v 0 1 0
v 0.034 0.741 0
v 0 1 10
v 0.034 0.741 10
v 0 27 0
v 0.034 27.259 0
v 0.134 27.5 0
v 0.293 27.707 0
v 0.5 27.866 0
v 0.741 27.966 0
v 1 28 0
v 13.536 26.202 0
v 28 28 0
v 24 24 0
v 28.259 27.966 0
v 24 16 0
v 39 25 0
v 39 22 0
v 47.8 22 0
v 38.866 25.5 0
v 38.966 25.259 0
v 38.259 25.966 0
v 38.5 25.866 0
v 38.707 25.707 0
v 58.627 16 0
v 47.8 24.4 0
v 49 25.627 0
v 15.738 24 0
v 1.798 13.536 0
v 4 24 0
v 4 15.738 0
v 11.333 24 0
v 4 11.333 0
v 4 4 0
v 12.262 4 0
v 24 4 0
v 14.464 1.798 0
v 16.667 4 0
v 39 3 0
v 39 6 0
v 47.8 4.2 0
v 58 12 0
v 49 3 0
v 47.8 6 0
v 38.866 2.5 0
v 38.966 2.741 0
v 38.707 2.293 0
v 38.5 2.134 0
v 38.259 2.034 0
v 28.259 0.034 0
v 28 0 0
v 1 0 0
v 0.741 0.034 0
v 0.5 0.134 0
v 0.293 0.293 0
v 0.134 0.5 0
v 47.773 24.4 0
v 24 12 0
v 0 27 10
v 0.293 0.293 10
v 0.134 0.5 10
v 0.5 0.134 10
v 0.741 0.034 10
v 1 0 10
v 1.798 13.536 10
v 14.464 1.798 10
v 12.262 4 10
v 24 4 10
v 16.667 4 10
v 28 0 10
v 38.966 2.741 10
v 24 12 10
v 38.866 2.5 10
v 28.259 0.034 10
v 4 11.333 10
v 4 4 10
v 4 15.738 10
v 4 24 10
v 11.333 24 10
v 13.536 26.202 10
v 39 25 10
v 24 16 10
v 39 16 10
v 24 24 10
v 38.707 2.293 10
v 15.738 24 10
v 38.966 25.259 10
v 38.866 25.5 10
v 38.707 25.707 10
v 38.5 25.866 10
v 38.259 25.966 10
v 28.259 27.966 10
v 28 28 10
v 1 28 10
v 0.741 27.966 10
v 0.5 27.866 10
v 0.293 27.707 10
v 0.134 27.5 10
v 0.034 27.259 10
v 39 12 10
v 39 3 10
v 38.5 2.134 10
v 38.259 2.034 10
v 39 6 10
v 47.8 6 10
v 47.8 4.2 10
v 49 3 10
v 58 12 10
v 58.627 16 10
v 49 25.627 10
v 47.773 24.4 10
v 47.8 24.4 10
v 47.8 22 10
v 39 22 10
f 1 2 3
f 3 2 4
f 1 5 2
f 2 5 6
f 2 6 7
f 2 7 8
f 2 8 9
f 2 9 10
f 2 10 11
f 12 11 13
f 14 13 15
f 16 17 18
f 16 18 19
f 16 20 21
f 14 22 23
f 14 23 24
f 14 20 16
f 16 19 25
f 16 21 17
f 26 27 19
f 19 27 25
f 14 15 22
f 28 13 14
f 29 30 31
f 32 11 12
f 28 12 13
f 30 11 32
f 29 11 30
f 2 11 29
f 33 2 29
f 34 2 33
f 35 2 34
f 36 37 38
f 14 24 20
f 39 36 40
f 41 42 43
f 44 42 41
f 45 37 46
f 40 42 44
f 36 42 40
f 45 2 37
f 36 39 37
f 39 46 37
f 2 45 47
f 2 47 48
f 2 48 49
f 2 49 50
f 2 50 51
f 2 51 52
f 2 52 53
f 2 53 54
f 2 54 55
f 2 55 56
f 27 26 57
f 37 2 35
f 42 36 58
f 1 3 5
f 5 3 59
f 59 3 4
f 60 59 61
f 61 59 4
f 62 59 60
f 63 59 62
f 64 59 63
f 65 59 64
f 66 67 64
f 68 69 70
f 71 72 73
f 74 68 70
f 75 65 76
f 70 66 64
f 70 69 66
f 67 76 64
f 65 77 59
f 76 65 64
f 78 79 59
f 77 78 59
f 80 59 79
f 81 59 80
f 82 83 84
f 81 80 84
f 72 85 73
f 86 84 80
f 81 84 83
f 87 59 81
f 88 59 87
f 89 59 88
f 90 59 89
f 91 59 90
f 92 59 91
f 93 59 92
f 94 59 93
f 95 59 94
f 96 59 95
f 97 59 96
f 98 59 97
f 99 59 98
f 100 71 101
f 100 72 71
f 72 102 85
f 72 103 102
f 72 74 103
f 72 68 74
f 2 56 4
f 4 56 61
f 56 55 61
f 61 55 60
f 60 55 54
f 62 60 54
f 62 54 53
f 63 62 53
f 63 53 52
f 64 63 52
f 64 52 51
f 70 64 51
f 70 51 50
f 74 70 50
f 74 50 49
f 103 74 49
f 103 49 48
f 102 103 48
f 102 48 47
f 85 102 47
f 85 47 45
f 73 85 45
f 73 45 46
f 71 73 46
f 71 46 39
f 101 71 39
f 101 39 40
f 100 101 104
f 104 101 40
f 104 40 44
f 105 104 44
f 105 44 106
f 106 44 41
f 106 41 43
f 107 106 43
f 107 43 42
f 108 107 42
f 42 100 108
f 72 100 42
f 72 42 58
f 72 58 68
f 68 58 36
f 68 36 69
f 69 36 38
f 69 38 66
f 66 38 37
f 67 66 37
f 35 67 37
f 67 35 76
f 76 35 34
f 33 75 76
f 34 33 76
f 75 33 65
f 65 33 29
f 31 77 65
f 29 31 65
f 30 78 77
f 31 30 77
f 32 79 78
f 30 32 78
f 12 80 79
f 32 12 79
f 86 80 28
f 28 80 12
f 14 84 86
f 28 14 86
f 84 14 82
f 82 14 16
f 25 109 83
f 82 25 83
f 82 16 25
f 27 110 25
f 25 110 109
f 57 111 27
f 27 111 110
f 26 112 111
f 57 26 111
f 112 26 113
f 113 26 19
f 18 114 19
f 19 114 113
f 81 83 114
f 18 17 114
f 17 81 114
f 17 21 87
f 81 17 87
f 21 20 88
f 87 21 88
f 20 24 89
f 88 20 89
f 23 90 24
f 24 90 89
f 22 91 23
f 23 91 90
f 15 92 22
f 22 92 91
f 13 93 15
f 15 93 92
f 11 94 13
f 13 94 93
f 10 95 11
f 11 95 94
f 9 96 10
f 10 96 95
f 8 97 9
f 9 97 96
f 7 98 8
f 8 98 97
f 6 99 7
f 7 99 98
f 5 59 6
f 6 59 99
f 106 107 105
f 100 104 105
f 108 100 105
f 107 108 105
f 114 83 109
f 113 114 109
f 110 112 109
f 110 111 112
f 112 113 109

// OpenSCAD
// file: tools/MCAD/metric_fasteners_tab.scad
//
// Symbols
//
M1x0_25 = 0;
M1 = M1x0_25;
M1_2x0_25 = 1;
M1_2 = M1_2x0_25;
M1_4x0_3 = 2;
M1_4 = M1_4x0_3;
M1_6x0_35 = 3;
M1_6 = M1_6x0_35;
M2x0_4 = 4;
M2 = M2x0_4;
M2_5x0_45 = 5;
M2_5 = M2_5x0_45;
M3x0_5 = 6;
M3 = M3x0_5;
M3_5x0_6 = 7;
M3_5 = M3_5x0_6;
M4x0_7 = 8;
M4 = M4x0_7;
M5x0_8 = 9;
M5 = M5x0_8;
M6x1 = 10;
M6 = M6x1;
M7x1 = 11;
M7 = M7x1;
M8x1 = 12;
M8x1_25 = 13;
M8 = M8x1_25;
M10x1 = 14;
M10x1_25 = 15;
M10x1_5 = 16;
M10 = M10x1_5;
M12x1_25 = 17;
M12x1_5 = 18;
M12x1_75 = 19;
M12 = M12x1_75;
M14x1_5 = 20;
M14x2 = 21;
M14 = M14x2;
M16x1_5 = 22;
M16x2 = 23;
M16 = M16x2;
M18x1_5 = 24;
M18x2 = 25;
M18x2_5 = 26;
M18 = M18x2_5;
M20x1_5 = 27;
M20x2 = 28;
M20x2_5 = 29;
M20 = M20x2_5;
M22x1_5 = 30;
M22x2 = 31;
M22x2_5 = 32;
M22 = M22x2_5;
M24x2 = 33;
M24x3 = 34;
M24 = M24x3;
M27x2 = 35;
M27x3 = 36;
M27 = M27x3;
M30x2 = 37;
M30x3_5 = 38;
M30 = M30x3_5;
M33x2 = 39;
M33x3_5 = 40;
M33 = M33x3_5;
M36x3 = 41;
M36x4 = 42;
M36 = M36x4;
M39x3 = 43;
M39x4 = 44;
M39 = M39x4;
M42x3 = 45;
M42x4_5 = 46;
M42 = M42x4_5;
M45x3 = 47;
M45x4_5 = 48;
M45 = M45x4_5;
M48x3 = 49;
M48x5 = 50;
M48 = M48x5;
M52x4 = 51;
M52x5 = 52;
M52 = M52x5;
M56x4 = 53;
M56x5_5 = 54;
M56 = M56x5_5;
M60x4 = 55;
M60x5_5 = 56;
M60 = M60x5_5;
M64x4 = 57;
M64x6 = 58;
M64 = M64x6;

//
// Threads
//
METRIC_THREADS = [
	/* d, p */
	[1, 0.25],
	[1.2, 0.25],
	[1.4, 0.3],
	[1.6, 0.35],
	[2, 0.4],
	[2.5, 0.45],
	[3, 0.5],
	[3.5, 0.6],
	[4, 0.7],
	[5, 0.8],
	[6, 1],
	[7, 1],
	[8, 1],
	[8, 1.25],
	[10, 1],
	[10, 1.25],
	[10, 1.5],
	[12, 1.25],
	[12, 1.5],
	[12, 1.75],
	[14, 1.5],
	[14, 2],
	[16, 1.5],
	[16, 2],
	[18, 1.5],
	[18, 2],
	[18, 2.5],
	[20, 1.5],
	[20, 2],
	[20, 2.5],
	[22, 1.5],
	[22, 2],
	[22, 2.5],
	[24, 2],
	[24, 3],
	[27, 2],
	[27, 3],
	[30, 2],
	[30, 3.5],
	[33, 2],
	[33, 3.5],
	[36, 3],
	[36, 4],
	[39, 3],
	[39, 4],
	[42, 3],
	[42, 4.5],
	[45, 3],
	[45, 4.5],
	[48, 3],
	[48, 5],
	[52, 4],
	[52, 5],
	[56, 4],
	[56, 5.5],
	[60, 4],
	[60, 5.5],
	[64, 4],
	[64, 6],
];

//
// Hexagonal heads and nuts
//
METRIC_HEXAGONAL_HEADS_AND_NUTS = [
	/* d, m, s */
	[1, 0.8, 2.5],
	[1.2, 1.0, 3.0],
	[1.4, 1.2, 3.0],
	[1.6, 1.3, 3.2],
	[2, 1.6, 4.0],
	[2.5, 2.0, 5.0],
	[3, 2.4, 5.5],
	[3.5, 2.8, 6.0],
	[4, 3.2, 7.0],
	[5, 4.7, 8.0],
	[6, 5.2, 10.0],
	[7, 5.5, 11.0],
	[8, 6.8, 13.0],
	[8, 6.8, 13.0],
	[10, 8.4, 16.0],
	[10, 8.4, 16.0],
	[10, 8.4, 16.0],
	[12, 10.8, 18.0],
	[12, 10.8, 18.0],
	[12, 10.8, 18.0],
	[14, 12.8, 21.0],
	[14, 12.8, 21.0],
	[16, 14.8, 24.0],
	[16, 14.8, 24.0],
	[18, 15.8, 27.0],
	[18, 15.8, 27.0],
	[18, 15.8, 27.0],
	[20, 18.0, 30.0],
	[20, 18.0, 30.0],
	[20, 18.0, 30.0],
	[22, 19.4, 34.0],
	[22, 19.4, 34.0],
	[22, 19.4, 34.0],
	[24, 21.5, 36.0],
	[24, 21.5, 36.0],
	[27, 23.8, 41.0],
	[27, 23.8, 41.0],
	[30, 25.6, 46.0],
	[30, 25.6, 46.0],
	[33, 28.7, 50.0],
	[33, 28.7, 50.0],
	[36, 31.0, 55.0],
	[36, 31.0, 55.0],
	[39, 33.4, 60.0],
	[39, 33.4, 60.0],
	[42, 34.0, 65.0],
	[42, 34.0, 65.0],
	[45, 36.0, 70.0],
	[45, 36.0, 70.0],
	[48, 38.0, 75.0],
	[48, 38.0, 75.0],
	[52, 42.0, 80.0],
	[52, 42.0, 80.0],
	[56, 45.0, 85.0],
	[56, 45.0, 85.0],
	[60, 48.0, 90.0],
	[60, 48.0, 90.0],
	[64, 51.0, 95.0],
	[64, 51.0, 95.0],
];

//
// Washers
//
METRIC_WASHERS = [
	/* wd1, wd2, wh */
	[1.1, 3, 0.3],
	[1.3, 3.5, 0.3],
	[1.5, 4, 0.3],
	[1.7, 4, 0.3],
	[2.2, 5, 0.3],
	[2.7, 6, 0.5],
	[3.2, 7, 0.5],
	[3.7, 8, 0.5],
	[4.3, 9, 0.8],
	[5.3, 10, 1],
	[6.4, 12, 1.6],
	[7.4, 14, 1.6],
	[8.4, 16, 1.6],
	[8.4, 16, 1.6],
	[10.5, 20, 2],
	[10.5, 20, 2],
	[10.5, 20, 2],
	[13, 24, 2.5],
	[13, 24, 2.5],
	[13, 24, 2.5],
	[15, 28, 2.5],
	[15, 28, 2.5],
	[17, 30, 3],
	[17, 30, 3],
	[19, 34, 3],
	[19, 34, 3],
	[19, 34, 3],
	[21, 37, 3],
	[21, 37, 3],
	[21, 37, 3],
	[23, 39, 3],
	[23, 39, 3],
	[23, 39, 3],
	[25, 44, 4],
	[25, 44, 4],
	[28, 50, 4],
	[28, 50, 4],
	[31, 56, 4],
	[31, 56, 4],
	[34, 60, 5],
	[34, 60, 5],
	[37, 66, 5],
	[37, 66, 5],
	[42, 72, 6],
	[42, 72, 6],
	[45, 78, 8],
	[45, 78, 8],
	[48, 85, 8],
	[48, 85, 8],
	[52, 92, 8],
	[52, 92, 8],
	[56, 98, 8],
	[56, 98, 8],
	[62, 105, 10],
	[62, 105, 10],
	[66, 110, 10],
	[66, 110, 10],
	[70, 115, 10],
	[70, 115, 10],
];
// file: tools/MCAD/metric_fasteners.scad
// -*- mode: scad; c-basic-offset: 4; c-file-style: "k&r"; indent-tabs-mode: nil -*-

/** \file fasteners.scad Metric fasteners: bolts, nuts, washers etc.
 */

include <metric_fasteners_tab.scad>

/**
 * The thickness of a hex nut.
 *
 * @param size  Index in the tables. Use M* variables.
 */
function hex_nut_thickness(size) = METRIC_HEXAGONAL_HEADS_AND_NUTS[size][1];

/**
 * Basic metric bolt with hexagonal head.
 *
 * @param size Index in the tables. Use M* variables.
 *
 * @param length Length of the thread.
 */

module hex_bolt(size, length)
{
    d = METRIC_THREADS[size][0];
    m = METRIC_HEXAGONAL_HEADS_AND_NUTS[size][1];
    s = METRIC_HEXAGONAL_HEADS_AND_NUTS[size][2];
    a = 0.1 * m;
    b = s / 1.73205;
    bolt_length = (length == undef) ? m : length;
    render()
        union()
    {
        translate([0, 0, -a])
            cylinder(r = d/2, h=bolt_length + a, $fn=24);
        translate([0, 0, -m])
            cylinder(r = b, h = m, $fn = 6);
    }
}

/**
 * Basic metric hexagonal nut *without* a threaded hole in it.
 *
 * @param size Index in the tables. Use M* variables
 */

module hex_nut (size)
{
    d = METRIC_THREADS[size][0];
    m = METRIC_HEXAGONAL_HEADS_AND_NUTS[size][1];
    s = METRIC_HEXAGONAL_HEADS_AND_NUTS[size][2];
    a = 0.1 * m;
    b = s / 1.73205;

    render ()
        cylinder (r = b, h = m, $fn = 6);
}

/**
 * Basic metric hexagonal nut *with* a hole in it. Avoid using this
 * module to carve holes for nuts and bolts because you may not get a
 * manifold mesh.
 *
 * @param size Index in the tables. Use M* variables
 */

module hex_nut_hole (size)
{
    d = METRIC_THREADS[size][0];
    m = METRIC_HEXAGONAL_HEADS_AND_NUTS[size][1];
    s = METRIC_HEXAGONAL_HEADS_AND_NUTS[size][2];
    a = 0.1 * m;
    b = s / 1.73205;

    render ()
        difference ()
    {
        cylinder (r = b, h = m, $fn = 6);
        translate ([0, 0, -0.05])
            cylinder (d = d, h = m + 0.1, $fn = 26);
    }
}
// main file
use <tools/MCAD/metric_fasteners.scad>

// Part PARAMETERS
overall_thickness = 10;
extrusion_width = 20;
extrusion_height = 20;
wall_thickness = 4;
clip_effective_height = 12;
clip_length = 15;
clip_length_offset = 10;
clip_flange_thickness = 3;

// CALCULATIONS
clip_channel_height = clip_effective_height - wall_thickness * 2;

assembly(ot = overall_thickness, extw = extrusion_width, exth = extrusion_height, wt = wall_thickness, ceh = clip_effective_height, cl = clip_length, clo = clip_length_offset, cft = clip_flange_thickness, cch = clip_channel_height);

module assembly(ot, extw, exth, wt, ceh, cl, clo, cft, cch) {
difference() {
union() {
// extrusion clip base
hull() {
minkowski() {
translate([1, 1, 0]) cube([extw + wt * 2 - 1, exth + wt * 2 - 2, ot - 0.01]);
cylinder(r=1, h=0.01, $fn=24);
}
minkowski() {
translate([extw + wt * 2 + 1, 6 / 2, 0]) cube([clo - 1, exth + wt * 2 - 6, ot - 0.01]);
cylinder(r=1, h=0.01, $fn=24);
}
}
translate([extw + wt + clo, (exth - clip_effective_height + wt) / 2, 0]) cube([clip_length, clip_effective_height + wt, ot]);
// spring clip base
difference() {
translate([extw + wt + clo + cl, (exth - clip_effective_height + wt) / 2 - cft, 0]) rotate([0, 0, 45]) cube([clip_effective_height + wt, clip_effective_height + wt, ot]);

translate([extw + clo + cl - clip_effective_height, (exth - clip_effective_height) / 2, -0.01]) cube([clip_effective_height + wt * 0.7, clip_effective_height * 1.7, ot + 0.02]);
}
}
// extrusion channel
translate([wt, wt, -0.01]) cube([extw, exth, ot + 0.02]);
// extrusion clip freedom
translate([wt + extw / 2, wt + exth / 2, 0]) {
for (a = [0, 90, 270]) {
rotate([0, 0, a])
translate([-extw / 2 + wt / 3, -wt, -0.01]) rotate([0, 0, 45]) cube([5, 5, ot + 0.02]);
}
}
// spring clip channel
translate([(extw + wt * 2) / 2, (exth + wt * 2) / 2 - (cch / 2), -0.01]) cube([exth + cl + clo + 5, cch, ot + 0.02]);
}
}
